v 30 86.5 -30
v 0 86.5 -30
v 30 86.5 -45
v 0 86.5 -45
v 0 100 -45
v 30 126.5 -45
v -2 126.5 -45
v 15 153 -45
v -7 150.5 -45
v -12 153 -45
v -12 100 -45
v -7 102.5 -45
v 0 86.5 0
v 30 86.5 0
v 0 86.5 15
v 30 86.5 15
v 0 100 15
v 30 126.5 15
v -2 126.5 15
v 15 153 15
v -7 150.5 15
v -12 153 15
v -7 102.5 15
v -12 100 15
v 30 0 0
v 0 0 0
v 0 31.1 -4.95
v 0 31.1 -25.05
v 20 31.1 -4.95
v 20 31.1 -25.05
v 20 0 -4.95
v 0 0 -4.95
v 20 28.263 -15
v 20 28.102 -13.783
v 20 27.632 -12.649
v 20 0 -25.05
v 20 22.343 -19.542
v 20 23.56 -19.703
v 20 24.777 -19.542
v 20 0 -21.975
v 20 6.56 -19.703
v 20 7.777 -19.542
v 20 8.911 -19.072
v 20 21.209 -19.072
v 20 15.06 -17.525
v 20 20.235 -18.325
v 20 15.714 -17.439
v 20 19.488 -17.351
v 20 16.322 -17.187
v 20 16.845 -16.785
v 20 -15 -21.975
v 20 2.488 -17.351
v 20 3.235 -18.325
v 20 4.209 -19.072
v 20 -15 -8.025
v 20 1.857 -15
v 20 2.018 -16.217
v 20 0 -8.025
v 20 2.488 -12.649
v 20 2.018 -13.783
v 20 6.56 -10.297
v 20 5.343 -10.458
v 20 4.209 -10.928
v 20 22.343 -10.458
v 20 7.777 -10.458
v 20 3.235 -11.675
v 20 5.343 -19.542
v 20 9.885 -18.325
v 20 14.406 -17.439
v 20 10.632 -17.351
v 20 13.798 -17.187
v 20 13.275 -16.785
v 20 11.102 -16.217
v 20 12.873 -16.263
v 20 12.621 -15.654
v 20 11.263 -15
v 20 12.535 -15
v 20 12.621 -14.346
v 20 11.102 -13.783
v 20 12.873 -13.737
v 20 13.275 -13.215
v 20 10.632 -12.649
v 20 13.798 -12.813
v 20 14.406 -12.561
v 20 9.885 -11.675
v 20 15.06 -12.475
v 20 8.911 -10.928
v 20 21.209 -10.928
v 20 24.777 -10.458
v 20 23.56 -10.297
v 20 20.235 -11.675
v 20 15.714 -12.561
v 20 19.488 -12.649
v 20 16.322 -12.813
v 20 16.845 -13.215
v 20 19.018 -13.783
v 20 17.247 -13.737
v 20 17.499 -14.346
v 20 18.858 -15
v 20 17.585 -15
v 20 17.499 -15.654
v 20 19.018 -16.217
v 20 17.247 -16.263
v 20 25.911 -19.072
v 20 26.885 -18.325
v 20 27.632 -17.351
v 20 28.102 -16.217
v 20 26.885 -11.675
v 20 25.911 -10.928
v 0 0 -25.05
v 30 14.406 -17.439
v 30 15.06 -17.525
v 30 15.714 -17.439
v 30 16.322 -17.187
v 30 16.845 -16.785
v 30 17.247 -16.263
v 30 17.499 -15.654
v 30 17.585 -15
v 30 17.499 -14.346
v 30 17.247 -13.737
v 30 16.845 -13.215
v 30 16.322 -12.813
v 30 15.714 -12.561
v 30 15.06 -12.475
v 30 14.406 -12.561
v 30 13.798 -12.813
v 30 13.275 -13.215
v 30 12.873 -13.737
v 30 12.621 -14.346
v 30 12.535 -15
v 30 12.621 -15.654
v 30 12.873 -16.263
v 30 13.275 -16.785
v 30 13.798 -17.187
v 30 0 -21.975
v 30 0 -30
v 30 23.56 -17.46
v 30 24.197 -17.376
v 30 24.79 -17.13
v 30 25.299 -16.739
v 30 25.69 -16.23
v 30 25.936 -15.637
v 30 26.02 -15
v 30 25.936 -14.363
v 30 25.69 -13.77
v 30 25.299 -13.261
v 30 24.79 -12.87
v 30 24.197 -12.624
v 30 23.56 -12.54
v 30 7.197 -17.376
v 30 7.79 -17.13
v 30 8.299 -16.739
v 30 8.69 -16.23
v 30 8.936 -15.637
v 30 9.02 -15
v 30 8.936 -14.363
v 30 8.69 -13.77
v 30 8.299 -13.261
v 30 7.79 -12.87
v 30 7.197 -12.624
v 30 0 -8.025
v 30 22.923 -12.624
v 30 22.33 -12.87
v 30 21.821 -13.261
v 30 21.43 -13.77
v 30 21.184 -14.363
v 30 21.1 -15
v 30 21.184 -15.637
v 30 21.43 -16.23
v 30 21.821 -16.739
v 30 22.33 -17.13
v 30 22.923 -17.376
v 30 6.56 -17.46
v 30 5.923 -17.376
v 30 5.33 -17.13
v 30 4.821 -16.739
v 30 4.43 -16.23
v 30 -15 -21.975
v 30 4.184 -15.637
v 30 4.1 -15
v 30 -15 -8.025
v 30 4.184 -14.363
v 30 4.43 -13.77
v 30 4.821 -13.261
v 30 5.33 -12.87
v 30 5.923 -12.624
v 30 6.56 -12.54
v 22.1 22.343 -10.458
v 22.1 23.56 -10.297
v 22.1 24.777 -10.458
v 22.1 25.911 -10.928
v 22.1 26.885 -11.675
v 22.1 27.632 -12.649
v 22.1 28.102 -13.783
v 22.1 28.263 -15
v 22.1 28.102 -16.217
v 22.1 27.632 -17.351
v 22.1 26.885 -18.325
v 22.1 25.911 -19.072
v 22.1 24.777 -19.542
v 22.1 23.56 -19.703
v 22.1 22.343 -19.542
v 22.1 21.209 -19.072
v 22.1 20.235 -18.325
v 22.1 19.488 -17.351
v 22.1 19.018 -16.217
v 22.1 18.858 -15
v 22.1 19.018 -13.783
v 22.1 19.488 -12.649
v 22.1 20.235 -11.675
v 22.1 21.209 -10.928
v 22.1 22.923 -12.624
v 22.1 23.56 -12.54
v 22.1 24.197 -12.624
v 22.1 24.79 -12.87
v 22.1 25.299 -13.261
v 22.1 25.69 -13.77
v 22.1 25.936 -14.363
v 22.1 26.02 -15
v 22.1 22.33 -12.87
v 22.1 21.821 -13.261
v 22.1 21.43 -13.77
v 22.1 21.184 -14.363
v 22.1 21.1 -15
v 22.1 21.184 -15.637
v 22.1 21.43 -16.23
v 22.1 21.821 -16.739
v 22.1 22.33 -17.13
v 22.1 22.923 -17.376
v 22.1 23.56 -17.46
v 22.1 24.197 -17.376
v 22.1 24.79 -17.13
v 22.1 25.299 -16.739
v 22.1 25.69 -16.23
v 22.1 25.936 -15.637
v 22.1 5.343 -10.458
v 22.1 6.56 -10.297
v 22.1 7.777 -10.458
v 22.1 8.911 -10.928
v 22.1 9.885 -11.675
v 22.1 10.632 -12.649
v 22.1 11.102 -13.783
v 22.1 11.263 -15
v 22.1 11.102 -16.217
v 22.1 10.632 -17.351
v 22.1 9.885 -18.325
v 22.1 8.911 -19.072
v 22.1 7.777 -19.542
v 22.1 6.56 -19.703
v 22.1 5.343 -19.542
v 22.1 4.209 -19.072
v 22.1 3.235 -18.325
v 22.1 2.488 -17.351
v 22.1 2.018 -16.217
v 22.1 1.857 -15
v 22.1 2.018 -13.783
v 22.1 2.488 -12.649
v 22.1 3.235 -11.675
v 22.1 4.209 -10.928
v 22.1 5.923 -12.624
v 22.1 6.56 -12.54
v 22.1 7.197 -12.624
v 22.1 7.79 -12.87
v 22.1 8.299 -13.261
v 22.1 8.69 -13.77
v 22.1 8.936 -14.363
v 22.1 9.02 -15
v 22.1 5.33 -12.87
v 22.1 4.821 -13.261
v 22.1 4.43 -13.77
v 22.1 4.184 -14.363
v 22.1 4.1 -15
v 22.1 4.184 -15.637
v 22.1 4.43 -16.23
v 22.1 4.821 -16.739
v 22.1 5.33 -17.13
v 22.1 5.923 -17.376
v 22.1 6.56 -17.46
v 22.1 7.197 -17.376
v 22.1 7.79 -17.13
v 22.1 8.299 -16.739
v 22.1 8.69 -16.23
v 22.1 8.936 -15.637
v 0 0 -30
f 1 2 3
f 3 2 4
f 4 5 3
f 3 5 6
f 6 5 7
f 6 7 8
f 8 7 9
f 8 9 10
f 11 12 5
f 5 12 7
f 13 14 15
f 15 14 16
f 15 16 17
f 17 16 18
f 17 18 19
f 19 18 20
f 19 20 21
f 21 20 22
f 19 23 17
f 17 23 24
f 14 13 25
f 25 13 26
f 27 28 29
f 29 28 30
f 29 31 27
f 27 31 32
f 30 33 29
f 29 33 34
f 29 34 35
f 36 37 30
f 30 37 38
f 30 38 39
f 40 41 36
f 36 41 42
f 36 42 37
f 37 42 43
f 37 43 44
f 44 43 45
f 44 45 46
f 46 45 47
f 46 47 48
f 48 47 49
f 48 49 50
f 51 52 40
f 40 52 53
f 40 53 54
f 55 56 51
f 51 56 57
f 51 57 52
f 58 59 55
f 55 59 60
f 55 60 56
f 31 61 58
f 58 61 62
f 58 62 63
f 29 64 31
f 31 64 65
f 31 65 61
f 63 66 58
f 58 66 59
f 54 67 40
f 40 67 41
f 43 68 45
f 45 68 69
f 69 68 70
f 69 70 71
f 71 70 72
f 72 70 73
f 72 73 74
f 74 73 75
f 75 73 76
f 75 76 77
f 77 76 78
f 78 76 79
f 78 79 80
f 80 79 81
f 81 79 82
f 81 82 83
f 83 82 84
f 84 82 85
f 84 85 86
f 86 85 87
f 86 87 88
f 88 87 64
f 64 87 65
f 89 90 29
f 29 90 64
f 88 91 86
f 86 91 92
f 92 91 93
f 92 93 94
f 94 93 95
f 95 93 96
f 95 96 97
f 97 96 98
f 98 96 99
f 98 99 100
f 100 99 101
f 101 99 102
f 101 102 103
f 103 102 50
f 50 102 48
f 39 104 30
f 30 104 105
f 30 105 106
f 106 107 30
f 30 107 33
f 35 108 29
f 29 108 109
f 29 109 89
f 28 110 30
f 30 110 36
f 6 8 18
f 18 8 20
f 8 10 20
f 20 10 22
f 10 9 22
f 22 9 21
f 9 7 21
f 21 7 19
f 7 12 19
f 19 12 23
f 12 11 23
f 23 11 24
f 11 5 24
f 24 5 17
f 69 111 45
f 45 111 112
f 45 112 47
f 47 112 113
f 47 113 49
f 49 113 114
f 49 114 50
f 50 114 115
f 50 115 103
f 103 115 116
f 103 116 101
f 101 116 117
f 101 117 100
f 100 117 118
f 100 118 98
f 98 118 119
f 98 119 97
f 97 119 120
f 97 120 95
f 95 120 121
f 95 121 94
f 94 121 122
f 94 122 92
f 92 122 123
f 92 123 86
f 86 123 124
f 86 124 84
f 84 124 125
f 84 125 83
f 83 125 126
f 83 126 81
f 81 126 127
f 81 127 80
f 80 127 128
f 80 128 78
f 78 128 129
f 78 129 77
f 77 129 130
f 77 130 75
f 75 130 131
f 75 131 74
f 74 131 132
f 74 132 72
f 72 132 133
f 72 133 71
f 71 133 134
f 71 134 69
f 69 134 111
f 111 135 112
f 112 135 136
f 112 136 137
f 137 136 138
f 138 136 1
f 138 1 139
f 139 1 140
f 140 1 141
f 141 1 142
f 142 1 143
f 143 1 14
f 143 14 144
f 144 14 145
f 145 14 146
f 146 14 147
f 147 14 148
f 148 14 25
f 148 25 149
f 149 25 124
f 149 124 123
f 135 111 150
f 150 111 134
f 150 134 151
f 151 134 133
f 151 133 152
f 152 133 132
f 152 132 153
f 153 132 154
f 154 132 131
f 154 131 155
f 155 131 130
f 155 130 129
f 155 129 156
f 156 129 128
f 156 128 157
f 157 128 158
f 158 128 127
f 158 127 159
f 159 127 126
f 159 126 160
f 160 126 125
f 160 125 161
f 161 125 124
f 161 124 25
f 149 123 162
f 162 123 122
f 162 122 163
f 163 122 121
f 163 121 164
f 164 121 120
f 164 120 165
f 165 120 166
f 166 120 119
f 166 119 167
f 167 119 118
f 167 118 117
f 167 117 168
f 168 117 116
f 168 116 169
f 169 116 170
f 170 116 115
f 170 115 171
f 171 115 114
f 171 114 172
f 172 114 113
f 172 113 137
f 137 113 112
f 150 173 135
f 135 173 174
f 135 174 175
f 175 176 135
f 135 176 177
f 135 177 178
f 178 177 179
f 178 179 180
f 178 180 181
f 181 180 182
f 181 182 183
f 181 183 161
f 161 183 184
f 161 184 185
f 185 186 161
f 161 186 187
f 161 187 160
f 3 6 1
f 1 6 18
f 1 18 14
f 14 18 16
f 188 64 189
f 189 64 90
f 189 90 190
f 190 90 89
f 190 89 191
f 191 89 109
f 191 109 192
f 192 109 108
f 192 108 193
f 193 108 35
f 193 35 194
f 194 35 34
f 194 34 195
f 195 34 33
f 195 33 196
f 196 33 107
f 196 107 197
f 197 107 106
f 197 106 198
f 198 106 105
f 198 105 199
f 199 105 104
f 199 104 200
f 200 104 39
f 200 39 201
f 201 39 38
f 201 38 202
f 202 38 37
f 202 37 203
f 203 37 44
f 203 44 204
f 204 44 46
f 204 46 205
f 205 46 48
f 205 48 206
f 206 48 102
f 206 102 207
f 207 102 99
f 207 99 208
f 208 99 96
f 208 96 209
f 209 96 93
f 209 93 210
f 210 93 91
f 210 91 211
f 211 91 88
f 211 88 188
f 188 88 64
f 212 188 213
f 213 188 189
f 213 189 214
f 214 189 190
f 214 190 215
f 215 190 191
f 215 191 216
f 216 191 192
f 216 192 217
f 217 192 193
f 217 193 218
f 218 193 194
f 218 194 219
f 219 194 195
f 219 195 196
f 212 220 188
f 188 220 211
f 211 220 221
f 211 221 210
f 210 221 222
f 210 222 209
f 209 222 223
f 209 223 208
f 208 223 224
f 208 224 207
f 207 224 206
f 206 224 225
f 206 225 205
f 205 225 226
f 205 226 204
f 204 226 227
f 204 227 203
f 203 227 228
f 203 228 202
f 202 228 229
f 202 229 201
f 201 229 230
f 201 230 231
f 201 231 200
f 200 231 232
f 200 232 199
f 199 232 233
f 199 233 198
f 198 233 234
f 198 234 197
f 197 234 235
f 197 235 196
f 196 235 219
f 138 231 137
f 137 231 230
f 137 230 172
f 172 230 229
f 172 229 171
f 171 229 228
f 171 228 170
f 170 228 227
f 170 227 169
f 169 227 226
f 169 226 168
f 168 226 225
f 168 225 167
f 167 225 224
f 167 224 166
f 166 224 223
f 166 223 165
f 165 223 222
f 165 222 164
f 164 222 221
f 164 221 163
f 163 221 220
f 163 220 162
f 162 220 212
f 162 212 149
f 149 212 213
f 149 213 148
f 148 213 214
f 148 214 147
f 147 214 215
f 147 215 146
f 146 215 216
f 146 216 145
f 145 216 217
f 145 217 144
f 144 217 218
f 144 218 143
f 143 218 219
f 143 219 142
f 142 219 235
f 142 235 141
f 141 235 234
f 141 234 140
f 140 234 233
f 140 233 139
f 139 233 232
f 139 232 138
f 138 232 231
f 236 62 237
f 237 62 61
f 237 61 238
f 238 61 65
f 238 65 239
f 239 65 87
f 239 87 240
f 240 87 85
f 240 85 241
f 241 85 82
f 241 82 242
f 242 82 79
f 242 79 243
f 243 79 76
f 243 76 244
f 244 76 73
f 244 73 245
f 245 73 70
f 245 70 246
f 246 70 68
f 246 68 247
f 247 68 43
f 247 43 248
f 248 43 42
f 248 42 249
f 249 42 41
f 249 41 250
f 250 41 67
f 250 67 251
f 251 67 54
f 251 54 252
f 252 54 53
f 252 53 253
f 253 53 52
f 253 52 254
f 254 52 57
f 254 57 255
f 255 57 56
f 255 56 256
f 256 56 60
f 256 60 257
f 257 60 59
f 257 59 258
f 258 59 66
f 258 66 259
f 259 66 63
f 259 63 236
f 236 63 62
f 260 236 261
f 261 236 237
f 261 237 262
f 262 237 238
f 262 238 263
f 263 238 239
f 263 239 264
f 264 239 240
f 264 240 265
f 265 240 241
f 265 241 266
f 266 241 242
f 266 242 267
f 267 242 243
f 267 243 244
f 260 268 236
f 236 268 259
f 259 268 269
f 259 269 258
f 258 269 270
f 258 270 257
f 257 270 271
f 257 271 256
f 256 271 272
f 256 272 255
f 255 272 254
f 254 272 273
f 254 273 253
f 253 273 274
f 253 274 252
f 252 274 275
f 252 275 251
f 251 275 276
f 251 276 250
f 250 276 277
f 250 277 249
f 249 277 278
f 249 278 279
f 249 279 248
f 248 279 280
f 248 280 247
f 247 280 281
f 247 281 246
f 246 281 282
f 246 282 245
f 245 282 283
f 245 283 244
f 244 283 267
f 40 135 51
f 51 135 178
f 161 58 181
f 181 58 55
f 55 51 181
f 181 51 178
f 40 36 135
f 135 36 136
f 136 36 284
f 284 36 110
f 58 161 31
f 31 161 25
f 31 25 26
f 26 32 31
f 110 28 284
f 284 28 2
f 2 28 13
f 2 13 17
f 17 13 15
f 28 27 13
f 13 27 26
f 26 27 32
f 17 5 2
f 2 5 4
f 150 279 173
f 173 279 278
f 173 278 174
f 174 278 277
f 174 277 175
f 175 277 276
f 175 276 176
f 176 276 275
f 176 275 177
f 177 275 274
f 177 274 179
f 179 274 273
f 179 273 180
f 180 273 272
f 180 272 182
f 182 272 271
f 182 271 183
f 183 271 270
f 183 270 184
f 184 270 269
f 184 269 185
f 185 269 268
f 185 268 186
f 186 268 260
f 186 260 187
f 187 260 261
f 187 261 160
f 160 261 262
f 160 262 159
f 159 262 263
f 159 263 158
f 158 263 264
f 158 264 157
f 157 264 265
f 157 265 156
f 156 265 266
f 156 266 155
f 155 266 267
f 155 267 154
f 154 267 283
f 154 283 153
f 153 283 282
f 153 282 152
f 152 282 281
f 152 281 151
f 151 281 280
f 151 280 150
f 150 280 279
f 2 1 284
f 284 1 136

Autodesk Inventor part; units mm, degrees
ref_plane "YZ Plane" through (0, 0, 0) normal (1, 0, 0) x (0, 1, 0)
ref_plane "XZ Plane" through (0, 0, 0) normal (0, 1, 0) x (-1, 0, 0)
sketch "Sketch1" plane through (0, 0, 0) normal (0, 0, 1) x (1, 0, 0)
  line L0 (0, 0) -> (25, 0)
  line L1 (25, 0) -> (25, 40)
  line L2 (25, 40) -> (0, 40)
  line L3 (0, 40) -> (0, 0)
  dimension "d1" = 25
  dimension "d2" = 40
  dimension "d3" = 25
extrude "Extrusion1" add sketch "Sketch1" against normal blind 30
sketch "Sketch2" plane through (25, 0, 0) normal (1, 0, 0) x (0, 0, -1)
  line L0 (0, 0) -> (30, 0) projected
  circle A0 centre (15, 6.56) radius 2.46
extrude "Extrusion2" cut sketch "Sketch2" against normal blind 30
sketch "Sketch3" plane through (0, 0, 0) normal (-1, 0, 0) x (0, 0, 1)
  line L0 (0, 0) -> (-30, 0) projected
  line L1 (-25.05, 0) -> (-4.95, 0)
  line L2 (-4.95, 0) -> (-4.95, 33.12)
  line L3 (-4.95, 33.12) -> (-25.05, 33.12)
  line L4 (-25.05, 33.12) -> (-25.05, 0)
  dimension "d11" = 20.1
extrude "Extrusion3" cut sketch "Sketch3" against normal blind 20
sketch "Sketch4" plane through (0, 0, 0) normal (0, -1, 0) x (1, 0, 0)
  line L0 (20, -4.95) -> (20, -25.05) projected
  line L1 (20, -15) -> (25, -15)
  line L2 (25, 0) -> (25, -30) projected
  line L3 (20, -8.025) -> (25, -8.025)
  line L4 (25, -8.025) -> (25, -21.975)
  line L5 (25, -21.975) -> (20, -21.975)
  line L6 (20, -21.975) -> (20, -8.025)
  line L7 (20, -8.025) -> (25, -21.975) construction
  line L8 (25, -8.025) -> (20, -21.975) construction
  line L9 (25, -12.54) -> (25, -17.46) projected
  point P0 (0, 0)
  point P1 (22.5, -15)
  dimension "d14" = 13.95
extrude "Extrusion4" add sketch "Sketch4" along normal blind 15
sketch "Sketch5" plane through (20, 0, 0) normal (-1, 0, 0) x (0, 0, 1)
  circle A0 centre (-15, 6.56) radius 2.46 projected
  circle A1 centre (-15, 6.56) radius 4.7025
  circle A2 centre (-15, 6.56) radius 2.46 projected
  circle A3 centre (-15, 6.56) radius 2.46
  point P0 (0, 0)
  dimension "d17" = 9.405
extrude "Extrusion5" cut sketch "Sketch5" against normal blind 2.1
sketch "Sketch6" plane through (25, 0, 0) normal (1, 0, 0) x (0, 0, -1)
  circle A0 centre (15, 6.56) radius 4.7025 projected
  line L0 (15, 6.56) -> (15, 23.56)
  circle A1 centre (15, 23.56) radius 2.46
  point P0 (0, 0)
  dimension "d20" = 17
  dimension "d21" = 4.92
extrude "Extrusion6" cut sketch "Sketch6" against normal blind 10 contours A1
sketch "Sketch7" plane through (20, 0, 0) normal (-1, 0, 0) x (0, 0, 1)
  circle A0 centre (-15, 23.56) radius 2.46 projected
  circle A1 centre (-15, 23.56) radius 4.7025
  point P0 (0, 0)
  dimension "d24" = 9.405
extrude "Extrusion7" cut sketch "Sketch7" against normal blind 2.1
sketch "Sketch9" plane through (25, 0, 0) normal (1, 0, 0) x (0, 0, -1)
  circle A0 centre (15, 6.56) radius 2.46 projected
  circle A1 centre (15, 6.56) radius 2.46
  circle A2 centre (15, 23.56) radius 2.46 projected
  circle A3 centre (15, 23.56) radius 2.46
  line L0 (30, 40) -> (30, 0) projected
  line L1 (30, 0) -> (30, 40)
  line L2 (30, 40) -> (0, 40)
  line L3 (0, 40) -> (0, 0)
  line L4 (0, 0) -> (8.025, 0) projected
  line L5 (21.975, 0) -> (21.975, -15)
  line L6 (21.975, -15) -> (8.025, -15)
  line L7 (8.025, -15) -> (8.025, 0)
  line L8 (0, 0) -> (8.025, 0)
  line L9 (21.975, 0) -> (30, 0)
extrude "Extrusion8" add sketch "Sketch9" along normal blind 5
sketch "Sketch10" plane through (0, 40, 0) normal (0, 1, 0) x (1, 0, 0)
  line L0 (0, 30) -> (30, 30) projected
  line L1 (30, 0) -> (0, 0) projected
  line L2 (0, 30) -> (30, 30)
  line L3 (30, 30) -> (30, 0)
  line L4 (30, 0) -> (0, 0)
  line L5 (0, 0) -> (0, 30)
extrude "Extrusion9" add sketch "Sketch10" along normal blind 30
sketch "Sketch12" plane through (30, 0, 0) normal (1, 0, 0) x (0, 0, -1)
  circle A0 centre (15, 6.56) radius 2.46 projected
  line L0 (15, 6.56) -> (15, 15.06)
  circle A1 centre (15, 15.06) radius 2.525
  point P0 (0, 0)
  dimension "d31" = 8.5
  dimension "d33" = 5.05
extrude "Extrusion10" cut sketch "Sketch12" against normal blind 30 contours A1
sketch "Sketch14" plane through (0, 0, 0) normal (0, 0, 1) x (1, 0, 0)
  line L0 (30, 70) -> (0, 70) projected
  line L1 (0, 70) -> (0, 85)
  line L2 (30, 0) -> (30, 70) projected
  line L3 (30, 122.5) -> (30, 70)
  line L4 (30, 105) -> (30, 100)
  line L5 (-12, 153) -> (15, 153)
  line L6 (-7, 150.5) -> (-12, 153)
  line L7 (-7, 102.5) -> (-12, 100)
  line L8 (-7, 102.5) -> (-2, 126.5)
  line L9 (-2, 126.5) -> (-7, 150.5)
  line L10 (30, 126.5) -> (15, 153)
  line L11 (30, 122.5) -> (30, 126.5)
  line L12 (0, 85) -> (0, 100)
  line L13 (0, 100) -> (-12, 100)
  point P0 (0, 0)
  dimension "d90" = 12
extrude "Extrusion12" add sketch "Sketch14" against normal blind 30
sketch "Sketch15" plane through (0, 0, -25.05) normal (-1, 0, 0) x (0, 0, 1)
  line L0 (0, 33.12) -> (20.1, 33.12) projected
  line L1 (20.1, 33.12) -> (20.1, 0) projected
  line L2 (0, 33.12) -> (20.1, 33.12)
  line L3 (20.1, 33.12) -> (20.1, 31.1)
  line L4 (20.1, 31.1) -> (0, 31.1)
  line L5 (0, 31.1) -> (0, 33.12)
  point P0 (25.05, 0)
  dimension "d57" = 2.02
extrude "Extrusion13" add sketch "Sketch15" against normal blind 20
sketch "Sketch25" plane through (0, 0, 0) normal (0, 0, 1) x (1, 0, 0)
  line L0 (0, 100) -> (-12, 100) projected
  line L1 (0, 100) -> (-12, 100)
  line L2 (-12, 100) -> (-7, 102.5) projected
  line L3 (-12, 100) -> (-7, 102.5)
  line L4 (-7, 102.5) -> (-2, 126.5) projected
  line L5 (-7, 102.5) -> (-2, 126.5)
  line L6 (-2, 126.5) -> (-7, 150.5) projected
  line L7 (-2, 126.5) -> (-7, 150.5)
  line L8 (-7, 150.5) -> (-12, 153) projected
  line L9 (-7, 150.5) -> (-12, 153)
  line L10 (-12, 153) -> (15, 153) projected
  line L11 (-12, 153) -> (15, 153)
  line L12 (15, 153) -> (30, 126.5) projected
  line L13 (15, 153) -> (30, 126.5)
  line L14 (30, 126.5) -> (30, 86.5)
  line L15 (30, 0) -> (30, 126.5) projected
  line L16 (30, 86.5) -> (0, 86.5)
  line L17 (0, 100) -> (0, 0) projected
  line L18 (0, 86.5) -> (0, 100)
  dimension "d91" = 40
  dimension "d92" = 30
extrude "Extrusion14" add sketch "Sketch25" along normal blind 15
ref_plane "Work Plane1" through (0, 0, -15) normal (0, 0, 1) x (1, 0, 0)
mirror "Mirror1" about plane through (0, 0, -15) normal (0, 0, 1) of "Extrusion14"
properties part number "rec_b_48mm_x_60mm"
